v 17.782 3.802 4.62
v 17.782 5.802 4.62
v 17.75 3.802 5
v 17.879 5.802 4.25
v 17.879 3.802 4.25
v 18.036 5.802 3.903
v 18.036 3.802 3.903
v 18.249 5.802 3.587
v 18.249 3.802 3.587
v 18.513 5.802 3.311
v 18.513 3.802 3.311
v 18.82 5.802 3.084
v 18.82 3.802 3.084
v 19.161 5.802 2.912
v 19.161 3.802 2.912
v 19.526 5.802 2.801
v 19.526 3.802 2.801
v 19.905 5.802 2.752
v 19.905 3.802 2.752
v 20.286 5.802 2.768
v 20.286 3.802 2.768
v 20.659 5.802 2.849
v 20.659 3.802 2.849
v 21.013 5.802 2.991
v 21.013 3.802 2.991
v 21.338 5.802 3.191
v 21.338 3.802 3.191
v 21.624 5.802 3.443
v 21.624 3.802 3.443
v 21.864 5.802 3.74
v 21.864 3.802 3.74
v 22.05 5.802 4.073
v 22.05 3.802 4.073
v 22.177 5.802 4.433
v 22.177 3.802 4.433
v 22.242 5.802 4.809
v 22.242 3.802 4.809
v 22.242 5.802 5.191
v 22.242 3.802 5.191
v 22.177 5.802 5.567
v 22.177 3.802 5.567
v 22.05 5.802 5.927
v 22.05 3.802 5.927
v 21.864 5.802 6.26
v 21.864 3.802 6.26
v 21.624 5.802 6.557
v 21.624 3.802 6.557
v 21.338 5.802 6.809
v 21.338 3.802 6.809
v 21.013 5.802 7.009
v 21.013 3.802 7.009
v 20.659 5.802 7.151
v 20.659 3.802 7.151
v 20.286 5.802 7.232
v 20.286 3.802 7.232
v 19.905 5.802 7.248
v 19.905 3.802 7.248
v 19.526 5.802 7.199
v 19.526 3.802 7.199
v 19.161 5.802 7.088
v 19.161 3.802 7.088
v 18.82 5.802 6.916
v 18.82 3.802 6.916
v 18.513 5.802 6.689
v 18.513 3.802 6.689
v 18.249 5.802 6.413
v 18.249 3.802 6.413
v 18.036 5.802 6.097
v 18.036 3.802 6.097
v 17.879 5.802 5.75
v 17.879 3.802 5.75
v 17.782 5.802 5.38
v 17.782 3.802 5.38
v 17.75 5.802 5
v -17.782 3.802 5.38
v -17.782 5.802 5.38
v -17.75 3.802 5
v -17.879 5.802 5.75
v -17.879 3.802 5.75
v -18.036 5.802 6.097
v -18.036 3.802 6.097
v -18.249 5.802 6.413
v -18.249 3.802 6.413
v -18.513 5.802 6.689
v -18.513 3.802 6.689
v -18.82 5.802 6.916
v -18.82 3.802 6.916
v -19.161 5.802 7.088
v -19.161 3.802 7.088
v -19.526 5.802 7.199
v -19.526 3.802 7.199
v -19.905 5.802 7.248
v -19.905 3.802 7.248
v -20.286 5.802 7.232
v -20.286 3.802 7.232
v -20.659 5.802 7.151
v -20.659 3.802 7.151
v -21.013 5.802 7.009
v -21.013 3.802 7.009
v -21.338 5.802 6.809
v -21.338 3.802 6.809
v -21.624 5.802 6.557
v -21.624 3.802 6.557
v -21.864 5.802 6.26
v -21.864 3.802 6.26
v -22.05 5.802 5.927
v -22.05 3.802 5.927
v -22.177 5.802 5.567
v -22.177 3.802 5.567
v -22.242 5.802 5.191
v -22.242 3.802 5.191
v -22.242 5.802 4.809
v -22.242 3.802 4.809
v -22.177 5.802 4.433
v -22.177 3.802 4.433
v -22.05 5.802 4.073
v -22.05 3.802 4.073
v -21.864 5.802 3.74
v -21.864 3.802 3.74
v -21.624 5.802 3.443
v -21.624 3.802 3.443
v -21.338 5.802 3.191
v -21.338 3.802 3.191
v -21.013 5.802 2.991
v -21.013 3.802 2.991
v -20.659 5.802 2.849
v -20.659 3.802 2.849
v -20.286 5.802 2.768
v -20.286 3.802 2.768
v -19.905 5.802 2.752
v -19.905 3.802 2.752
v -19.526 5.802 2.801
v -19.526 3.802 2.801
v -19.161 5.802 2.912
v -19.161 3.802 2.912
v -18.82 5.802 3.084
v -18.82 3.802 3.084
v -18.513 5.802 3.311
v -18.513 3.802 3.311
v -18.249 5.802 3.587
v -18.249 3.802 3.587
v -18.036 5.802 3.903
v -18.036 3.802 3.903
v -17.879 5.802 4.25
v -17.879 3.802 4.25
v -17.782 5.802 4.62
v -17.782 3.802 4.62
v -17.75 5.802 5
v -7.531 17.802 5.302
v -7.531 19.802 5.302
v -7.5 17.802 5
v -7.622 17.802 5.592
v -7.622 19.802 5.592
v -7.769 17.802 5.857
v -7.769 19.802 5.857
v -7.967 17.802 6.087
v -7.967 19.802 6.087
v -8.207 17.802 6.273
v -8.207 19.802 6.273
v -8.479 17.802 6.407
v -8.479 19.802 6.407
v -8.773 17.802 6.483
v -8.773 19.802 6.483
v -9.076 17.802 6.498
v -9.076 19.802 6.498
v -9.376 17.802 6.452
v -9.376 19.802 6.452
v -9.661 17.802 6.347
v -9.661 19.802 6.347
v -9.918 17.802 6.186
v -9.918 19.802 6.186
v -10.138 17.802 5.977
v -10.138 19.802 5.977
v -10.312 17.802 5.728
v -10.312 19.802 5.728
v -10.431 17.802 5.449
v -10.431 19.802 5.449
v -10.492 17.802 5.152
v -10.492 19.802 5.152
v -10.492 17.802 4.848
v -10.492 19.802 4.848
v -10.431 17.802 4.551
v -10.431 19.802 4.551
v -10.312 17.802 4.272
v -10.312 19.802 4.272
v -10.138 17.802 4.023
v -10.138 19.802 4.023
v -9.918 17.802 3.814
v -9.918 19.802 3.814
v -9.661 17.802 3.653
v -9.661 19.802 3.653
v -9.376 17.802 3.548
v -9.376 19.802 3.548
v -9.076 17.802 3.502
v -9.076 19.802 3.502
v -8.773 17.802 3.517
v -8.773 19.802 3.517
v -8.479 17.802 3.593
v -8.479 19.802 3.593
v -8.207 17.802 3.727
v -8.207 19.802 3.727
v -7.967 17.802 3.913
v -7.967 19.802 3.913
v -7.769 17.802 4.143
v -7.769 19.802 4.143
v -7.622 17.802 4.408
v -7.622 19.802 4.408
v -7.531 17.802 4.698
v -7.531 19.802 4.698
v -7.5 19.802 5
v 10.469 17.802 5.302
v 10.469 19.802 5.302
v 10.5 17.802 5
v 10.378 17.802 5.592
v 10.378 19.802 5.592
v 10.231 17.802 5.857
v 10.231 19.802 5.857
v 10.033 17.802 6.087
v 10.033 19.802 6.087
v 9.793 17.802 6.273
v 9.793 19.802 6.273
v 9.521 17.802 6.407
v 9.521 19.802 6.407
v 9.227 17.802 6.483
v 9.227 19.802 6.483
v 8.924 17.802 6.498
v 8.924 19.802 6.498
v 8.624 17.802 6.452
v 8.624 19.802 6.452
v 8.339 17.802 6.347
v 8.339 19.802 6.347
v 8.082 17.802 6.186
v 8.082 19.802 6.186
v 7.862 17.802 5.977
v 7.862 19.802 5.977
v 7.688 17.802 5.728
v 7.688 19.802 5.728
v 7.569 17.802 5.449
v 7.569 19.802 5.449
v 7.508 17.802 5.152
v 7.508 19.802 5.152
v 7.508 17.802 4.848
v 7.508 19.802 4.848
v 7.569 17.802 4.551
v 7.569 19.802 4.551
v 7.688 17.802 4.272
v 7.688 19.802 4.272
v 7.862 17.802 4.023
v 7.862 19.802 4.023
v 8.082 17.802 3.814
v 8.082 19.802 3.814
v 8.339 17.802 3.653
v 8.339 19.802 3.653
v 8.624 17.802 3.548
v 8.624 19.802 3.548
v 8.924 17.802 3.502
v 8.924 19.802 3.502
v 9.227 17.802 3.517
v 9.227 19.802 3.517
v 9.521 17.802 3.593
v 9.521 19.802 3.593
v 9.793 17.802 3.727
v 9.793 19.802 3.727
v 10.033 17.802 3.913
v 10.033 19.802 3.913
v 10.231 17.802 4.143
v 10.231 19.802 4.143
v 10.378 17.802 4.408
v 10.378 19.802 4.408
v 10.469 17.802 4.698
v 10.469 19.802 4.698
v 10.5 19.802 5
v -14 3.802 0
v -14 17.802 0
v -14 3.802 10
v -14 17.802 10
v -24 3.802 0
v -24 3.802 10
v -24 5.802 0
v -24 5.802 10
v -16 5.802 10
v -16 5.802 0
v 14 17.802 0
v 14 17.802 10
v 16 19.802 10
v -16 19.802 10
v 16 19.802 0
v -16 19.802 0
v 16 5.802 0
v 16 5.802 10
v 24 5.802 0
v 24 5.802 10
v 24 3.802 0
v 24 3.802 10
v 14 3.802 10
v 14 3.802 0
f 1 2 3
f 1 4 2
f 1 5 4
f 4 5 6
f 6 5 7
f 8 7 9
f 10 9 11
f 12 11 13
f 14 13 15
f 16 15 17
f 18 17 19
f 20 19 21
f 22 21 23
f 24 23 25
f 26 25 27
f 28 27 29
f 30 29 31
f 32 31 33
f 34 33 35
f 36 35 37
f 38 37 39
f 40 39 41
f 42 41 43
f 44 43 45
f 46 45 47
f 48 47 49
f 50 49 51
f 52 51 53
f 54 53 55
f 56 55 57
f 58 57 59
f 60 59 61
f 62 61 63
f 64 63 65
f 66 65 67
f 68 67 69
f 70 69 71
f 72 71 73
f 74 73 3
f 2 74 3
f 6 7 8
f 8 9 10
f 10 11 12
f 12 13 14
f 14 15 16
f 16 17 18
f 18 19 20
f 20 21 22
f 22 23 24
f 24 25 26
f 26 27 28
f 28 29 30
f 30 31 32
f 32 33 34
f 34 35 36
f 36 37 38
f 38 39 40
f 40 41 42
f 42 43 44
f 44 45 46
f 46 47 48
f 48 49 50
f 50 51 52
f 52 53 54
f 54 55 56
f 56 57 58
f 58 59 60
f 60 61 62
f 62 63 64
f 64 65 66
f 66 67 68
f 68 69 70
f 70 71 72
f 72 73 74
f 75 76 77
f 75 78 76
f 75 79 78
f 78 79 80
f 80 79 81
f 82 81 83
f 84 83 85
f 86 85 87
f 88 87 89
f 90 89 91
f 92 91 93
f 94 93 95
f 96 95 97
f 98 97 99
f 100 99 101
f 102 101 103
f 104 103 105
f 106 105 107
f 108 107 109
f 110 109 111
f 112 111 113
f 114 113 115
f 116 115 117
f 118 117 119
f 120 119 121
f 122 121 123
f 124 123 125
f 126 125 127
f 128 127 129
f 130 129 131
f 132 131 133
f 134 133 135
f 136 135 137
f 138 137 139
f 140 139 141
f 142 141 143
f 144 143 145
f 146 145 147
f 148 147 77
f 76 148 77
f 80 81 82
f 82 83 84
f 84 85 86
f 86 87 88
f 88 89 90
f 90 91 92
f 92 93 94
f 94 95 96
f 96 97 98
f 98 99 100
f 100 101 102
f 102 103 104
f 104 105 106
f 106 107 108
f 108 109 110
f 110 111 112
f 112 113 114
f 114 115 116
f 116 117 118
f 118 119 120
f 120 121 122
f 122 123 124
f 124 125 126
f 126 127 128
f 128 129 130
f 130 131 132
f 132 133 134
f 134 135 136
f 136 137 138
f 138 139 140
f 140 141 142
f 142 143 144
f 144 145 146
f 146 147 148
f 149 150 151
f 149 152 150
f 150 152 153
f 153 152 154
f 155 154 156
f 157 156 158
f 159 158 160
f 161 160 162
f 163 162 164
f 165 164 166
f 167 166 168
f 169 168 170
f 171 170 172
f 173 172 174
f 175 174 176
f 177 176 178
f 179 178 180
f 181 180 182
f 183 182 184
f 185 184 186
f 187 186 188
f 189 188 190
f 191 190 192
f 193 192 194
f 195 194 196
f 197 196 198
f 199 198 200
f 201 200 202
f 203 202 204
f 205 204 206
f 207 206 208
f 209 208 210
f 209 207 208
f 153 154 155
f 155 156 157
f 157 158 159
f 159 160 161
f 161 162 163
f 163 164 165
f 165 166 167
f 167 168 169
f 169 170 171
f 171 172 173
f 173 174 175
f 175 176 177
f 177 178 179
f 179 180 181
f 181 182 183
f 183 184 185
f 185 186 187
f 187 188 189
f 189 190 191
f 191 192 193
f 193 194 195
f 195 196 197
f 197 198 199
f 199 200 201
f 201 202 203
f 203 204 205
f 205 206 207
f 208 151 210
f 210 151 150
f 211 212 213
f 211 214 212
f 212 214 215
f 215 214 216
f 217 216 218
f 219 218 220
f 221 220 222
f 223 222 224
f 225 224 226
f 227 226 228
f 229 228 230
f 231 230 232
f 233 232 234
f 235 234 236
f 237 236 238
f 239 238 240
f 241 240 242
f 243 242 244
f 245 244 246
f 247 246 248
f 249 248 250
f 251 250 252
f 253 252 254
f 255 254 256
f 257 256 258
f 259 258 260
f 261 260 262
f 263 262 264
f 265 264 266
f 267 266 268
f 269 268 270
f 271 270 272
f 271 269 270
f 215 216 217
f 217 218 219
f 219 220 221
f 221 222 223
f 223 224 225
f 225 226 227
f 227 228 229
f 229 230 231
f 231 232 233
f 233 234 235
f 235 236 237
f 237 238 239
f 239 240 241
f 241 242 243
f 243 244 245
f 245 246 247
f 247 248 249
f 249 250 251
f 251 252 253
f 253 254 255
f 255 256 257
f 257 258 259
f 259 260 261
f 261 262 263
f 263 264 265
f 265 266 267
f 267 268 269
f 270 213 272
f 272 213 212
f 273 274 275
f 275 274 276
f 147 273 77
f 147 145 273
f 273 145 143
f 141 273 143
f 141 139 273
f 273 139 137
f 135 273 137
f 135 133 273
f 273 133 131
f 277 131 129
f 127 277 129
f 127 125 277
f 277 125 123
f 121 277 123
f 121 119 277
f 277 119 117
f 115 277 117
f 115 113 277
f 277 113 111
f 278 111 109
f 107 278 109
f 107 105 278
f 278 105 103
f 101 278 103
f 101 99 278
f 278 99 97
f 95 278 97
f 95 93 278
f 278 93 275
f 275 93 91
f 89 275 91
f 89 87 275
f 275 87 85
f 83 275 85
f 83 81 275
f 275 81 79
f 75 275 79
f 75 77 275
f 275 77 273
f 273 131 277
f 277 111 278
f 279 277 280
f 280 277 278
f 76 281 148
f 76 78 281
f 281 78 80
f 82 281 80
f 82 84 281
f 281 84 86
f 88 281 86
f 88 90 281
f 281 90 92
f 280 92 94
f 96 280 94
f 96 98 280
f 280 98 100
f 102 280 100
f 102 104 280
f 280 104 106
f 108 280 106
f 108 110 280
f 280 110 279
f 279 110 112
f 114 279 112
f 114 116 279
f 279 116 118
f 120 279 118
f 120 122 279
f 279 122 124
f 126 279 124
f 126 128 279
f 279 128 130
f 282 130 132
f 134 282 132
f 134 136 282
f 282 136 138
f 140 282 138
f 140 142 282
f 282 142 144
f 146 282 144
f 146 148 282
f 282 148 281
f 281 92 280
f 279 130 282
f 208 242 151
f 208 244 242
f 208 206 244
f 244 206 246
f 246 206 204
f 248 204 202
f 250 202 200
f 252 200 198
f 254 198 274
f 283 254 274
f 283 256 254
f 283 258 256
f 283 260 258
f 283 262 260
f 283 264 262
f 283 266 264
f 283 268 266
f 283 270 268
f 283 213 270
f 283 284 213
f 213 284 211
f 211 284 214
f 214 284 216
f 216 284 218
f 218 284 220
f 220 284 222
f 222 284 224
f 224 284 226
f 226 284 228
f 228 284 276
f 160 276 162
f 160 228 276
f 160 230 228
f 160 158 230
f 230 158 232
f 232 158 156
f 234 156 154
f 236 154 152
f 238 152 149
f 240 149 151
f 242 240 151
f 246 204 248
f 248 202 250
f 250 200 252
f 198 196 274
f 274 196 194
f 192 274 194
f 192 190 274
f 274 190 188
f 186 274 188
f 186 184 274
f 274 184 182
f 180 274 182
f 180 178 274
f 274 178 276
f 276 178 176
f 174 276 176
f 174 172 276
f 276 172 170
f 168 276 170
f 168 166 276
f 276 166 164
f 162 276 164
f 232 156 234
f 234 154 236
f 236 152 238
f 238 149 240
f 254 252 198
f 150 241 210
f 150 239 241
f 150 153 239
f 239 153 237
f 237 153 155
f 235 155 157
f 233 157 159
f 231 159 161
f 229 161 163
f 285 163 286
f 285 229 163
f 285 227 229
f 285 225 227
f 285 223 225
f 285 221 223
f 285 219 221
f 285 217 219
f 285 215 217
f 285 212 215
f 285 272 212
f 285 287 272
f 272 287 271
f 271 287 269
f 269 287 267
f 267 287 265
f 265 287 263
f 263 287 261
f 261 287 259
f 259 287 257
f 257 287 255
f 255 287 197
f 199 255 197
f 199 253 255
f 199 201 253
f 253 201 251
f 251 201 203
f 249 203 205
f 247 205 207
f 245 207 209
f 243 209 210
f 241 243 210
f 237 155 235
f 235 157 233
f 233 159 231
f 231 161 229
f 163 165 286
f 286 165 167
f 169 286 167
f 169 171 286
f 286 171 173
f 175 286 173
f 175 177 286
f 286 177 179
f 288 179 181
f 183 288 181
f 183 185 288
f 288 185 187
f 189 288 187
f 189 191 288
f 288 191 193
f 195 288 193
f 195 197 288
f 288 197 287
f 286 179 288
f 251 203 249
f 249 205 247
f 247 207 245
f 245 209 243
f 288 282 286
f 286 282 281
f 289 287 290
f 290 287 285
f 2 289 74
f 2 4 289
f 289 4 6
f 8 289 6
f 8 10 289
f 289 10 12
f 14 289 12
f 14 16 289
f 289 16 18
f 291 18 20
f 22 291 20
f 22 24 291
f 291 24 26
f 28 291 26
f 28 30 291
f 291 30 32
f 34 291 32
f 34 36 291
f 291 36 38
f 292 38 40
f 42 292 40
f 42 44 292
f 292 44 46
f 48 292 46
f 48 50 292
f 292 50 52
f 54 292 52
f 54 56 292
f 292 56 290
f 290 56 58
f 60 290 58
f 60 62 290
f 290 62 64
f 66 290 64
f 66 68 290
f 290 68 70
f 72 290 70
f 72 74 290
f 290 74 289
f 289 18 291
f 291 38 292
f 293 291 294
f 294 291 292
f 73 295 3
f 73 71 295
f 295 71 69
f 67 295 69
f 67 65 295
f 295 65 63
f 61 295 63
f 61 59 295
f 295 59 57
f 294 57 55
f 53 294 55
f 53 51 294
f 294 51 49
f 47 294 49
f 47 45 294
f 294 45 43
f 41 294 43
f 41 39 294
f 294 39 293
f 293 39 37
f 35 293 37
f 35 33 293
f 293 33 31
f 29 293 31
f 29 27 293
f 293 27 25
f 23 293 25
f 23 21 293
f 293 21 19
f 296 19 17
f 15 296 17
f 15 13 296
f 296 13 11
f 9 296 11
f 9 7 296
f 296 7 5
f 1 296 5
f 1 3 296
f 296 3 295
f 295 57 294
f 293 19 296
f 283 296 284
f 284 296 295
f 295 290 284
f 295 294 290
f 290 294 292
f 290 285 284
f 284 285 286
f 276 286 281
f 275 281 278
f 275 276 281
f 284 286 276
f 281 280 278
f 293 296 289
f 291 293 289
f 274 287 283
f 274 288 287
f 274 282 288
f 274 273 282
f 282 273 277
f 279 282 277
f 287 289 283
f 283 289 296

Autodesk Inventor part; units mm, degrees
ref_plane "YZ Plane" through (0, 0, 0) normal (1, 0, 0) x (0, 1, 0)
ref_plane "XZ Plane" through (0, 0, 0) normal (0, 1, 0) x (-1, 0, 0)
ref_plane "XY Plane" through (0, 0, 0) normal (0, 0, 1) x (1, 0, 0)
sketch "Sketch1" plane through (0, 0, 0) normal (0, 0, 1) x (1, 0, 0)
  line L0 (-16, 19.8024) -> (16, 19.8024)
  line L1 (16, 19.8024) -> (16, 17.8024)
  line L2 (16, 17.8024) -> (-16, 17.8024)
  line L3 (-16, 17.8024) -> (-16, 19.8024)
  line L4 (-16, 17.8024) -> (-14, 17.8024)
  line L5 (-14, 17.8024) -> (-14, 5.8024)
  line L6 (-14, 5.8024) -> (-16, 5.8024)
  line L7 (-16, 5.8024) -> (-16, 17.8024)
  line L8 (16, 17.8024) -> (14, 17.8024)
  line L9 (14, 17.8024) -> (14, 5.8024)
  line L10 (14, 5.8024) -> (16, 5.8024)
  line L11 (16, 5.8024) -> (16, 17.8024)
  line L12 (-14, 5.8024) -> (-24, 5.8024)
  line L13 (-24, 5.8024) -> (-24, 3.8024)
  line L14 (-24, 3.8024) -> (-14, 3.8024)
  line L15 (-14, 3.8024) -> (-14, 5.8024)
  line L16 (14, 5.8024) -> (24, 5.8024)
  line L17 (24, 5.8024) -> (24, 3.8024)
  line L18 (24, 3.8024) -> (14, 3.8024)
  line L19 (14, 3.8024) -> (14, 5.8024)
  point P0 (0, 0)
  point P1 (0, 19.8024)
  dimension "d0" = 32
  dimension "d1" = 2
  dimension "d2" = 2
  dimension "d3" = 12
  dimension "d4" = 2
  dimension "d5" = 12
  dimension "d6" = 10
  dimension "d7" = 2
  dimension "d8" = 10
  dimension "d9" = 2
extrude "Extrusion1" add sketch "Sketch1" along normal blind 10
sketch "Sketch2" plane through (-16, 19.8024, 0) normal (0, 1, 0) x (1, 0, 0)
  line L0 (32, 0) -> (0, 0) projected
  line L1 (0, 0) -> (0, -10) projected
  line L2 (32, -10) -> (0, -10) projected
  line L3 (32, 0) -> (32, -10) projected
  line L4 (0, 0) -> (0, -10) projected
  line L5 (32, 0) -> (32, -10) projected
  circle A0 centre (7, -5) radius 1.5
  circle A1 centre (25, -5) radius 1.5
  line L6 (2, -10) -> (30, -10) projected
  line L7 (16, -10) -> (16, 0) construction
  dimension "d12" = 3
  dimension "d13" = 3
  dimension "d14" = 9
  dimension "d15" = 9
extrude "Extrusion2" cut sketch "Sketch2" against normal blind 3 contours A0 | A1
sketch "Sketch3" plane through (-24, 5.8024, 0) normal (0, 1, 0) x (1, 0, 0)
  line L0 (8, -10) -> (8, 0) projected
  line L1 (8, 0) -> (0, 0) projected
  line L2 (0, 0) -> (0, -10) projected
  line L3 (8, -10) -> (0, -10) projected
  circle A0 centre (4, -5) radius 2.25
  point P0 (24, 0)
  dimension "d18" = 4.5
extrude "Extrusion3" cut sketch "Sketch3" against normal blind 3 contours A0
mirror "Mirror1" about plane through (0, 0, 0) normal (1, 0, 0) of "Extrusion3"
sketch "Sketch4" plane through (14, 3.8024, 0) normal (0, -1, 0) x (1, 0, 0)
  circle A0 centre (6, 5) radius 2.25 projected
  line L0 (0, 0) -> (10, 0) projected
  line L1 (10, 0) -> (10, 10) projected
  line L2 (0, 10) -> (10, 10) projected
  line L3 (0, 0) -> (0, 10) projected
  circle A1 centre (-34, 5) radius 2.25 projected
  line L4 (-38, 0) -> (-28, 0) projected
  line L5 (-28, 0) -> (-28, 10) projected
  line L6 (-38, 10) -> (-28, 10) projected
  line L7 (-38, 0) -> (-38, 10) projected
  point P0 (-14, 0)
  dimension "d21" = 40
properties part number "EncoderBracket"
